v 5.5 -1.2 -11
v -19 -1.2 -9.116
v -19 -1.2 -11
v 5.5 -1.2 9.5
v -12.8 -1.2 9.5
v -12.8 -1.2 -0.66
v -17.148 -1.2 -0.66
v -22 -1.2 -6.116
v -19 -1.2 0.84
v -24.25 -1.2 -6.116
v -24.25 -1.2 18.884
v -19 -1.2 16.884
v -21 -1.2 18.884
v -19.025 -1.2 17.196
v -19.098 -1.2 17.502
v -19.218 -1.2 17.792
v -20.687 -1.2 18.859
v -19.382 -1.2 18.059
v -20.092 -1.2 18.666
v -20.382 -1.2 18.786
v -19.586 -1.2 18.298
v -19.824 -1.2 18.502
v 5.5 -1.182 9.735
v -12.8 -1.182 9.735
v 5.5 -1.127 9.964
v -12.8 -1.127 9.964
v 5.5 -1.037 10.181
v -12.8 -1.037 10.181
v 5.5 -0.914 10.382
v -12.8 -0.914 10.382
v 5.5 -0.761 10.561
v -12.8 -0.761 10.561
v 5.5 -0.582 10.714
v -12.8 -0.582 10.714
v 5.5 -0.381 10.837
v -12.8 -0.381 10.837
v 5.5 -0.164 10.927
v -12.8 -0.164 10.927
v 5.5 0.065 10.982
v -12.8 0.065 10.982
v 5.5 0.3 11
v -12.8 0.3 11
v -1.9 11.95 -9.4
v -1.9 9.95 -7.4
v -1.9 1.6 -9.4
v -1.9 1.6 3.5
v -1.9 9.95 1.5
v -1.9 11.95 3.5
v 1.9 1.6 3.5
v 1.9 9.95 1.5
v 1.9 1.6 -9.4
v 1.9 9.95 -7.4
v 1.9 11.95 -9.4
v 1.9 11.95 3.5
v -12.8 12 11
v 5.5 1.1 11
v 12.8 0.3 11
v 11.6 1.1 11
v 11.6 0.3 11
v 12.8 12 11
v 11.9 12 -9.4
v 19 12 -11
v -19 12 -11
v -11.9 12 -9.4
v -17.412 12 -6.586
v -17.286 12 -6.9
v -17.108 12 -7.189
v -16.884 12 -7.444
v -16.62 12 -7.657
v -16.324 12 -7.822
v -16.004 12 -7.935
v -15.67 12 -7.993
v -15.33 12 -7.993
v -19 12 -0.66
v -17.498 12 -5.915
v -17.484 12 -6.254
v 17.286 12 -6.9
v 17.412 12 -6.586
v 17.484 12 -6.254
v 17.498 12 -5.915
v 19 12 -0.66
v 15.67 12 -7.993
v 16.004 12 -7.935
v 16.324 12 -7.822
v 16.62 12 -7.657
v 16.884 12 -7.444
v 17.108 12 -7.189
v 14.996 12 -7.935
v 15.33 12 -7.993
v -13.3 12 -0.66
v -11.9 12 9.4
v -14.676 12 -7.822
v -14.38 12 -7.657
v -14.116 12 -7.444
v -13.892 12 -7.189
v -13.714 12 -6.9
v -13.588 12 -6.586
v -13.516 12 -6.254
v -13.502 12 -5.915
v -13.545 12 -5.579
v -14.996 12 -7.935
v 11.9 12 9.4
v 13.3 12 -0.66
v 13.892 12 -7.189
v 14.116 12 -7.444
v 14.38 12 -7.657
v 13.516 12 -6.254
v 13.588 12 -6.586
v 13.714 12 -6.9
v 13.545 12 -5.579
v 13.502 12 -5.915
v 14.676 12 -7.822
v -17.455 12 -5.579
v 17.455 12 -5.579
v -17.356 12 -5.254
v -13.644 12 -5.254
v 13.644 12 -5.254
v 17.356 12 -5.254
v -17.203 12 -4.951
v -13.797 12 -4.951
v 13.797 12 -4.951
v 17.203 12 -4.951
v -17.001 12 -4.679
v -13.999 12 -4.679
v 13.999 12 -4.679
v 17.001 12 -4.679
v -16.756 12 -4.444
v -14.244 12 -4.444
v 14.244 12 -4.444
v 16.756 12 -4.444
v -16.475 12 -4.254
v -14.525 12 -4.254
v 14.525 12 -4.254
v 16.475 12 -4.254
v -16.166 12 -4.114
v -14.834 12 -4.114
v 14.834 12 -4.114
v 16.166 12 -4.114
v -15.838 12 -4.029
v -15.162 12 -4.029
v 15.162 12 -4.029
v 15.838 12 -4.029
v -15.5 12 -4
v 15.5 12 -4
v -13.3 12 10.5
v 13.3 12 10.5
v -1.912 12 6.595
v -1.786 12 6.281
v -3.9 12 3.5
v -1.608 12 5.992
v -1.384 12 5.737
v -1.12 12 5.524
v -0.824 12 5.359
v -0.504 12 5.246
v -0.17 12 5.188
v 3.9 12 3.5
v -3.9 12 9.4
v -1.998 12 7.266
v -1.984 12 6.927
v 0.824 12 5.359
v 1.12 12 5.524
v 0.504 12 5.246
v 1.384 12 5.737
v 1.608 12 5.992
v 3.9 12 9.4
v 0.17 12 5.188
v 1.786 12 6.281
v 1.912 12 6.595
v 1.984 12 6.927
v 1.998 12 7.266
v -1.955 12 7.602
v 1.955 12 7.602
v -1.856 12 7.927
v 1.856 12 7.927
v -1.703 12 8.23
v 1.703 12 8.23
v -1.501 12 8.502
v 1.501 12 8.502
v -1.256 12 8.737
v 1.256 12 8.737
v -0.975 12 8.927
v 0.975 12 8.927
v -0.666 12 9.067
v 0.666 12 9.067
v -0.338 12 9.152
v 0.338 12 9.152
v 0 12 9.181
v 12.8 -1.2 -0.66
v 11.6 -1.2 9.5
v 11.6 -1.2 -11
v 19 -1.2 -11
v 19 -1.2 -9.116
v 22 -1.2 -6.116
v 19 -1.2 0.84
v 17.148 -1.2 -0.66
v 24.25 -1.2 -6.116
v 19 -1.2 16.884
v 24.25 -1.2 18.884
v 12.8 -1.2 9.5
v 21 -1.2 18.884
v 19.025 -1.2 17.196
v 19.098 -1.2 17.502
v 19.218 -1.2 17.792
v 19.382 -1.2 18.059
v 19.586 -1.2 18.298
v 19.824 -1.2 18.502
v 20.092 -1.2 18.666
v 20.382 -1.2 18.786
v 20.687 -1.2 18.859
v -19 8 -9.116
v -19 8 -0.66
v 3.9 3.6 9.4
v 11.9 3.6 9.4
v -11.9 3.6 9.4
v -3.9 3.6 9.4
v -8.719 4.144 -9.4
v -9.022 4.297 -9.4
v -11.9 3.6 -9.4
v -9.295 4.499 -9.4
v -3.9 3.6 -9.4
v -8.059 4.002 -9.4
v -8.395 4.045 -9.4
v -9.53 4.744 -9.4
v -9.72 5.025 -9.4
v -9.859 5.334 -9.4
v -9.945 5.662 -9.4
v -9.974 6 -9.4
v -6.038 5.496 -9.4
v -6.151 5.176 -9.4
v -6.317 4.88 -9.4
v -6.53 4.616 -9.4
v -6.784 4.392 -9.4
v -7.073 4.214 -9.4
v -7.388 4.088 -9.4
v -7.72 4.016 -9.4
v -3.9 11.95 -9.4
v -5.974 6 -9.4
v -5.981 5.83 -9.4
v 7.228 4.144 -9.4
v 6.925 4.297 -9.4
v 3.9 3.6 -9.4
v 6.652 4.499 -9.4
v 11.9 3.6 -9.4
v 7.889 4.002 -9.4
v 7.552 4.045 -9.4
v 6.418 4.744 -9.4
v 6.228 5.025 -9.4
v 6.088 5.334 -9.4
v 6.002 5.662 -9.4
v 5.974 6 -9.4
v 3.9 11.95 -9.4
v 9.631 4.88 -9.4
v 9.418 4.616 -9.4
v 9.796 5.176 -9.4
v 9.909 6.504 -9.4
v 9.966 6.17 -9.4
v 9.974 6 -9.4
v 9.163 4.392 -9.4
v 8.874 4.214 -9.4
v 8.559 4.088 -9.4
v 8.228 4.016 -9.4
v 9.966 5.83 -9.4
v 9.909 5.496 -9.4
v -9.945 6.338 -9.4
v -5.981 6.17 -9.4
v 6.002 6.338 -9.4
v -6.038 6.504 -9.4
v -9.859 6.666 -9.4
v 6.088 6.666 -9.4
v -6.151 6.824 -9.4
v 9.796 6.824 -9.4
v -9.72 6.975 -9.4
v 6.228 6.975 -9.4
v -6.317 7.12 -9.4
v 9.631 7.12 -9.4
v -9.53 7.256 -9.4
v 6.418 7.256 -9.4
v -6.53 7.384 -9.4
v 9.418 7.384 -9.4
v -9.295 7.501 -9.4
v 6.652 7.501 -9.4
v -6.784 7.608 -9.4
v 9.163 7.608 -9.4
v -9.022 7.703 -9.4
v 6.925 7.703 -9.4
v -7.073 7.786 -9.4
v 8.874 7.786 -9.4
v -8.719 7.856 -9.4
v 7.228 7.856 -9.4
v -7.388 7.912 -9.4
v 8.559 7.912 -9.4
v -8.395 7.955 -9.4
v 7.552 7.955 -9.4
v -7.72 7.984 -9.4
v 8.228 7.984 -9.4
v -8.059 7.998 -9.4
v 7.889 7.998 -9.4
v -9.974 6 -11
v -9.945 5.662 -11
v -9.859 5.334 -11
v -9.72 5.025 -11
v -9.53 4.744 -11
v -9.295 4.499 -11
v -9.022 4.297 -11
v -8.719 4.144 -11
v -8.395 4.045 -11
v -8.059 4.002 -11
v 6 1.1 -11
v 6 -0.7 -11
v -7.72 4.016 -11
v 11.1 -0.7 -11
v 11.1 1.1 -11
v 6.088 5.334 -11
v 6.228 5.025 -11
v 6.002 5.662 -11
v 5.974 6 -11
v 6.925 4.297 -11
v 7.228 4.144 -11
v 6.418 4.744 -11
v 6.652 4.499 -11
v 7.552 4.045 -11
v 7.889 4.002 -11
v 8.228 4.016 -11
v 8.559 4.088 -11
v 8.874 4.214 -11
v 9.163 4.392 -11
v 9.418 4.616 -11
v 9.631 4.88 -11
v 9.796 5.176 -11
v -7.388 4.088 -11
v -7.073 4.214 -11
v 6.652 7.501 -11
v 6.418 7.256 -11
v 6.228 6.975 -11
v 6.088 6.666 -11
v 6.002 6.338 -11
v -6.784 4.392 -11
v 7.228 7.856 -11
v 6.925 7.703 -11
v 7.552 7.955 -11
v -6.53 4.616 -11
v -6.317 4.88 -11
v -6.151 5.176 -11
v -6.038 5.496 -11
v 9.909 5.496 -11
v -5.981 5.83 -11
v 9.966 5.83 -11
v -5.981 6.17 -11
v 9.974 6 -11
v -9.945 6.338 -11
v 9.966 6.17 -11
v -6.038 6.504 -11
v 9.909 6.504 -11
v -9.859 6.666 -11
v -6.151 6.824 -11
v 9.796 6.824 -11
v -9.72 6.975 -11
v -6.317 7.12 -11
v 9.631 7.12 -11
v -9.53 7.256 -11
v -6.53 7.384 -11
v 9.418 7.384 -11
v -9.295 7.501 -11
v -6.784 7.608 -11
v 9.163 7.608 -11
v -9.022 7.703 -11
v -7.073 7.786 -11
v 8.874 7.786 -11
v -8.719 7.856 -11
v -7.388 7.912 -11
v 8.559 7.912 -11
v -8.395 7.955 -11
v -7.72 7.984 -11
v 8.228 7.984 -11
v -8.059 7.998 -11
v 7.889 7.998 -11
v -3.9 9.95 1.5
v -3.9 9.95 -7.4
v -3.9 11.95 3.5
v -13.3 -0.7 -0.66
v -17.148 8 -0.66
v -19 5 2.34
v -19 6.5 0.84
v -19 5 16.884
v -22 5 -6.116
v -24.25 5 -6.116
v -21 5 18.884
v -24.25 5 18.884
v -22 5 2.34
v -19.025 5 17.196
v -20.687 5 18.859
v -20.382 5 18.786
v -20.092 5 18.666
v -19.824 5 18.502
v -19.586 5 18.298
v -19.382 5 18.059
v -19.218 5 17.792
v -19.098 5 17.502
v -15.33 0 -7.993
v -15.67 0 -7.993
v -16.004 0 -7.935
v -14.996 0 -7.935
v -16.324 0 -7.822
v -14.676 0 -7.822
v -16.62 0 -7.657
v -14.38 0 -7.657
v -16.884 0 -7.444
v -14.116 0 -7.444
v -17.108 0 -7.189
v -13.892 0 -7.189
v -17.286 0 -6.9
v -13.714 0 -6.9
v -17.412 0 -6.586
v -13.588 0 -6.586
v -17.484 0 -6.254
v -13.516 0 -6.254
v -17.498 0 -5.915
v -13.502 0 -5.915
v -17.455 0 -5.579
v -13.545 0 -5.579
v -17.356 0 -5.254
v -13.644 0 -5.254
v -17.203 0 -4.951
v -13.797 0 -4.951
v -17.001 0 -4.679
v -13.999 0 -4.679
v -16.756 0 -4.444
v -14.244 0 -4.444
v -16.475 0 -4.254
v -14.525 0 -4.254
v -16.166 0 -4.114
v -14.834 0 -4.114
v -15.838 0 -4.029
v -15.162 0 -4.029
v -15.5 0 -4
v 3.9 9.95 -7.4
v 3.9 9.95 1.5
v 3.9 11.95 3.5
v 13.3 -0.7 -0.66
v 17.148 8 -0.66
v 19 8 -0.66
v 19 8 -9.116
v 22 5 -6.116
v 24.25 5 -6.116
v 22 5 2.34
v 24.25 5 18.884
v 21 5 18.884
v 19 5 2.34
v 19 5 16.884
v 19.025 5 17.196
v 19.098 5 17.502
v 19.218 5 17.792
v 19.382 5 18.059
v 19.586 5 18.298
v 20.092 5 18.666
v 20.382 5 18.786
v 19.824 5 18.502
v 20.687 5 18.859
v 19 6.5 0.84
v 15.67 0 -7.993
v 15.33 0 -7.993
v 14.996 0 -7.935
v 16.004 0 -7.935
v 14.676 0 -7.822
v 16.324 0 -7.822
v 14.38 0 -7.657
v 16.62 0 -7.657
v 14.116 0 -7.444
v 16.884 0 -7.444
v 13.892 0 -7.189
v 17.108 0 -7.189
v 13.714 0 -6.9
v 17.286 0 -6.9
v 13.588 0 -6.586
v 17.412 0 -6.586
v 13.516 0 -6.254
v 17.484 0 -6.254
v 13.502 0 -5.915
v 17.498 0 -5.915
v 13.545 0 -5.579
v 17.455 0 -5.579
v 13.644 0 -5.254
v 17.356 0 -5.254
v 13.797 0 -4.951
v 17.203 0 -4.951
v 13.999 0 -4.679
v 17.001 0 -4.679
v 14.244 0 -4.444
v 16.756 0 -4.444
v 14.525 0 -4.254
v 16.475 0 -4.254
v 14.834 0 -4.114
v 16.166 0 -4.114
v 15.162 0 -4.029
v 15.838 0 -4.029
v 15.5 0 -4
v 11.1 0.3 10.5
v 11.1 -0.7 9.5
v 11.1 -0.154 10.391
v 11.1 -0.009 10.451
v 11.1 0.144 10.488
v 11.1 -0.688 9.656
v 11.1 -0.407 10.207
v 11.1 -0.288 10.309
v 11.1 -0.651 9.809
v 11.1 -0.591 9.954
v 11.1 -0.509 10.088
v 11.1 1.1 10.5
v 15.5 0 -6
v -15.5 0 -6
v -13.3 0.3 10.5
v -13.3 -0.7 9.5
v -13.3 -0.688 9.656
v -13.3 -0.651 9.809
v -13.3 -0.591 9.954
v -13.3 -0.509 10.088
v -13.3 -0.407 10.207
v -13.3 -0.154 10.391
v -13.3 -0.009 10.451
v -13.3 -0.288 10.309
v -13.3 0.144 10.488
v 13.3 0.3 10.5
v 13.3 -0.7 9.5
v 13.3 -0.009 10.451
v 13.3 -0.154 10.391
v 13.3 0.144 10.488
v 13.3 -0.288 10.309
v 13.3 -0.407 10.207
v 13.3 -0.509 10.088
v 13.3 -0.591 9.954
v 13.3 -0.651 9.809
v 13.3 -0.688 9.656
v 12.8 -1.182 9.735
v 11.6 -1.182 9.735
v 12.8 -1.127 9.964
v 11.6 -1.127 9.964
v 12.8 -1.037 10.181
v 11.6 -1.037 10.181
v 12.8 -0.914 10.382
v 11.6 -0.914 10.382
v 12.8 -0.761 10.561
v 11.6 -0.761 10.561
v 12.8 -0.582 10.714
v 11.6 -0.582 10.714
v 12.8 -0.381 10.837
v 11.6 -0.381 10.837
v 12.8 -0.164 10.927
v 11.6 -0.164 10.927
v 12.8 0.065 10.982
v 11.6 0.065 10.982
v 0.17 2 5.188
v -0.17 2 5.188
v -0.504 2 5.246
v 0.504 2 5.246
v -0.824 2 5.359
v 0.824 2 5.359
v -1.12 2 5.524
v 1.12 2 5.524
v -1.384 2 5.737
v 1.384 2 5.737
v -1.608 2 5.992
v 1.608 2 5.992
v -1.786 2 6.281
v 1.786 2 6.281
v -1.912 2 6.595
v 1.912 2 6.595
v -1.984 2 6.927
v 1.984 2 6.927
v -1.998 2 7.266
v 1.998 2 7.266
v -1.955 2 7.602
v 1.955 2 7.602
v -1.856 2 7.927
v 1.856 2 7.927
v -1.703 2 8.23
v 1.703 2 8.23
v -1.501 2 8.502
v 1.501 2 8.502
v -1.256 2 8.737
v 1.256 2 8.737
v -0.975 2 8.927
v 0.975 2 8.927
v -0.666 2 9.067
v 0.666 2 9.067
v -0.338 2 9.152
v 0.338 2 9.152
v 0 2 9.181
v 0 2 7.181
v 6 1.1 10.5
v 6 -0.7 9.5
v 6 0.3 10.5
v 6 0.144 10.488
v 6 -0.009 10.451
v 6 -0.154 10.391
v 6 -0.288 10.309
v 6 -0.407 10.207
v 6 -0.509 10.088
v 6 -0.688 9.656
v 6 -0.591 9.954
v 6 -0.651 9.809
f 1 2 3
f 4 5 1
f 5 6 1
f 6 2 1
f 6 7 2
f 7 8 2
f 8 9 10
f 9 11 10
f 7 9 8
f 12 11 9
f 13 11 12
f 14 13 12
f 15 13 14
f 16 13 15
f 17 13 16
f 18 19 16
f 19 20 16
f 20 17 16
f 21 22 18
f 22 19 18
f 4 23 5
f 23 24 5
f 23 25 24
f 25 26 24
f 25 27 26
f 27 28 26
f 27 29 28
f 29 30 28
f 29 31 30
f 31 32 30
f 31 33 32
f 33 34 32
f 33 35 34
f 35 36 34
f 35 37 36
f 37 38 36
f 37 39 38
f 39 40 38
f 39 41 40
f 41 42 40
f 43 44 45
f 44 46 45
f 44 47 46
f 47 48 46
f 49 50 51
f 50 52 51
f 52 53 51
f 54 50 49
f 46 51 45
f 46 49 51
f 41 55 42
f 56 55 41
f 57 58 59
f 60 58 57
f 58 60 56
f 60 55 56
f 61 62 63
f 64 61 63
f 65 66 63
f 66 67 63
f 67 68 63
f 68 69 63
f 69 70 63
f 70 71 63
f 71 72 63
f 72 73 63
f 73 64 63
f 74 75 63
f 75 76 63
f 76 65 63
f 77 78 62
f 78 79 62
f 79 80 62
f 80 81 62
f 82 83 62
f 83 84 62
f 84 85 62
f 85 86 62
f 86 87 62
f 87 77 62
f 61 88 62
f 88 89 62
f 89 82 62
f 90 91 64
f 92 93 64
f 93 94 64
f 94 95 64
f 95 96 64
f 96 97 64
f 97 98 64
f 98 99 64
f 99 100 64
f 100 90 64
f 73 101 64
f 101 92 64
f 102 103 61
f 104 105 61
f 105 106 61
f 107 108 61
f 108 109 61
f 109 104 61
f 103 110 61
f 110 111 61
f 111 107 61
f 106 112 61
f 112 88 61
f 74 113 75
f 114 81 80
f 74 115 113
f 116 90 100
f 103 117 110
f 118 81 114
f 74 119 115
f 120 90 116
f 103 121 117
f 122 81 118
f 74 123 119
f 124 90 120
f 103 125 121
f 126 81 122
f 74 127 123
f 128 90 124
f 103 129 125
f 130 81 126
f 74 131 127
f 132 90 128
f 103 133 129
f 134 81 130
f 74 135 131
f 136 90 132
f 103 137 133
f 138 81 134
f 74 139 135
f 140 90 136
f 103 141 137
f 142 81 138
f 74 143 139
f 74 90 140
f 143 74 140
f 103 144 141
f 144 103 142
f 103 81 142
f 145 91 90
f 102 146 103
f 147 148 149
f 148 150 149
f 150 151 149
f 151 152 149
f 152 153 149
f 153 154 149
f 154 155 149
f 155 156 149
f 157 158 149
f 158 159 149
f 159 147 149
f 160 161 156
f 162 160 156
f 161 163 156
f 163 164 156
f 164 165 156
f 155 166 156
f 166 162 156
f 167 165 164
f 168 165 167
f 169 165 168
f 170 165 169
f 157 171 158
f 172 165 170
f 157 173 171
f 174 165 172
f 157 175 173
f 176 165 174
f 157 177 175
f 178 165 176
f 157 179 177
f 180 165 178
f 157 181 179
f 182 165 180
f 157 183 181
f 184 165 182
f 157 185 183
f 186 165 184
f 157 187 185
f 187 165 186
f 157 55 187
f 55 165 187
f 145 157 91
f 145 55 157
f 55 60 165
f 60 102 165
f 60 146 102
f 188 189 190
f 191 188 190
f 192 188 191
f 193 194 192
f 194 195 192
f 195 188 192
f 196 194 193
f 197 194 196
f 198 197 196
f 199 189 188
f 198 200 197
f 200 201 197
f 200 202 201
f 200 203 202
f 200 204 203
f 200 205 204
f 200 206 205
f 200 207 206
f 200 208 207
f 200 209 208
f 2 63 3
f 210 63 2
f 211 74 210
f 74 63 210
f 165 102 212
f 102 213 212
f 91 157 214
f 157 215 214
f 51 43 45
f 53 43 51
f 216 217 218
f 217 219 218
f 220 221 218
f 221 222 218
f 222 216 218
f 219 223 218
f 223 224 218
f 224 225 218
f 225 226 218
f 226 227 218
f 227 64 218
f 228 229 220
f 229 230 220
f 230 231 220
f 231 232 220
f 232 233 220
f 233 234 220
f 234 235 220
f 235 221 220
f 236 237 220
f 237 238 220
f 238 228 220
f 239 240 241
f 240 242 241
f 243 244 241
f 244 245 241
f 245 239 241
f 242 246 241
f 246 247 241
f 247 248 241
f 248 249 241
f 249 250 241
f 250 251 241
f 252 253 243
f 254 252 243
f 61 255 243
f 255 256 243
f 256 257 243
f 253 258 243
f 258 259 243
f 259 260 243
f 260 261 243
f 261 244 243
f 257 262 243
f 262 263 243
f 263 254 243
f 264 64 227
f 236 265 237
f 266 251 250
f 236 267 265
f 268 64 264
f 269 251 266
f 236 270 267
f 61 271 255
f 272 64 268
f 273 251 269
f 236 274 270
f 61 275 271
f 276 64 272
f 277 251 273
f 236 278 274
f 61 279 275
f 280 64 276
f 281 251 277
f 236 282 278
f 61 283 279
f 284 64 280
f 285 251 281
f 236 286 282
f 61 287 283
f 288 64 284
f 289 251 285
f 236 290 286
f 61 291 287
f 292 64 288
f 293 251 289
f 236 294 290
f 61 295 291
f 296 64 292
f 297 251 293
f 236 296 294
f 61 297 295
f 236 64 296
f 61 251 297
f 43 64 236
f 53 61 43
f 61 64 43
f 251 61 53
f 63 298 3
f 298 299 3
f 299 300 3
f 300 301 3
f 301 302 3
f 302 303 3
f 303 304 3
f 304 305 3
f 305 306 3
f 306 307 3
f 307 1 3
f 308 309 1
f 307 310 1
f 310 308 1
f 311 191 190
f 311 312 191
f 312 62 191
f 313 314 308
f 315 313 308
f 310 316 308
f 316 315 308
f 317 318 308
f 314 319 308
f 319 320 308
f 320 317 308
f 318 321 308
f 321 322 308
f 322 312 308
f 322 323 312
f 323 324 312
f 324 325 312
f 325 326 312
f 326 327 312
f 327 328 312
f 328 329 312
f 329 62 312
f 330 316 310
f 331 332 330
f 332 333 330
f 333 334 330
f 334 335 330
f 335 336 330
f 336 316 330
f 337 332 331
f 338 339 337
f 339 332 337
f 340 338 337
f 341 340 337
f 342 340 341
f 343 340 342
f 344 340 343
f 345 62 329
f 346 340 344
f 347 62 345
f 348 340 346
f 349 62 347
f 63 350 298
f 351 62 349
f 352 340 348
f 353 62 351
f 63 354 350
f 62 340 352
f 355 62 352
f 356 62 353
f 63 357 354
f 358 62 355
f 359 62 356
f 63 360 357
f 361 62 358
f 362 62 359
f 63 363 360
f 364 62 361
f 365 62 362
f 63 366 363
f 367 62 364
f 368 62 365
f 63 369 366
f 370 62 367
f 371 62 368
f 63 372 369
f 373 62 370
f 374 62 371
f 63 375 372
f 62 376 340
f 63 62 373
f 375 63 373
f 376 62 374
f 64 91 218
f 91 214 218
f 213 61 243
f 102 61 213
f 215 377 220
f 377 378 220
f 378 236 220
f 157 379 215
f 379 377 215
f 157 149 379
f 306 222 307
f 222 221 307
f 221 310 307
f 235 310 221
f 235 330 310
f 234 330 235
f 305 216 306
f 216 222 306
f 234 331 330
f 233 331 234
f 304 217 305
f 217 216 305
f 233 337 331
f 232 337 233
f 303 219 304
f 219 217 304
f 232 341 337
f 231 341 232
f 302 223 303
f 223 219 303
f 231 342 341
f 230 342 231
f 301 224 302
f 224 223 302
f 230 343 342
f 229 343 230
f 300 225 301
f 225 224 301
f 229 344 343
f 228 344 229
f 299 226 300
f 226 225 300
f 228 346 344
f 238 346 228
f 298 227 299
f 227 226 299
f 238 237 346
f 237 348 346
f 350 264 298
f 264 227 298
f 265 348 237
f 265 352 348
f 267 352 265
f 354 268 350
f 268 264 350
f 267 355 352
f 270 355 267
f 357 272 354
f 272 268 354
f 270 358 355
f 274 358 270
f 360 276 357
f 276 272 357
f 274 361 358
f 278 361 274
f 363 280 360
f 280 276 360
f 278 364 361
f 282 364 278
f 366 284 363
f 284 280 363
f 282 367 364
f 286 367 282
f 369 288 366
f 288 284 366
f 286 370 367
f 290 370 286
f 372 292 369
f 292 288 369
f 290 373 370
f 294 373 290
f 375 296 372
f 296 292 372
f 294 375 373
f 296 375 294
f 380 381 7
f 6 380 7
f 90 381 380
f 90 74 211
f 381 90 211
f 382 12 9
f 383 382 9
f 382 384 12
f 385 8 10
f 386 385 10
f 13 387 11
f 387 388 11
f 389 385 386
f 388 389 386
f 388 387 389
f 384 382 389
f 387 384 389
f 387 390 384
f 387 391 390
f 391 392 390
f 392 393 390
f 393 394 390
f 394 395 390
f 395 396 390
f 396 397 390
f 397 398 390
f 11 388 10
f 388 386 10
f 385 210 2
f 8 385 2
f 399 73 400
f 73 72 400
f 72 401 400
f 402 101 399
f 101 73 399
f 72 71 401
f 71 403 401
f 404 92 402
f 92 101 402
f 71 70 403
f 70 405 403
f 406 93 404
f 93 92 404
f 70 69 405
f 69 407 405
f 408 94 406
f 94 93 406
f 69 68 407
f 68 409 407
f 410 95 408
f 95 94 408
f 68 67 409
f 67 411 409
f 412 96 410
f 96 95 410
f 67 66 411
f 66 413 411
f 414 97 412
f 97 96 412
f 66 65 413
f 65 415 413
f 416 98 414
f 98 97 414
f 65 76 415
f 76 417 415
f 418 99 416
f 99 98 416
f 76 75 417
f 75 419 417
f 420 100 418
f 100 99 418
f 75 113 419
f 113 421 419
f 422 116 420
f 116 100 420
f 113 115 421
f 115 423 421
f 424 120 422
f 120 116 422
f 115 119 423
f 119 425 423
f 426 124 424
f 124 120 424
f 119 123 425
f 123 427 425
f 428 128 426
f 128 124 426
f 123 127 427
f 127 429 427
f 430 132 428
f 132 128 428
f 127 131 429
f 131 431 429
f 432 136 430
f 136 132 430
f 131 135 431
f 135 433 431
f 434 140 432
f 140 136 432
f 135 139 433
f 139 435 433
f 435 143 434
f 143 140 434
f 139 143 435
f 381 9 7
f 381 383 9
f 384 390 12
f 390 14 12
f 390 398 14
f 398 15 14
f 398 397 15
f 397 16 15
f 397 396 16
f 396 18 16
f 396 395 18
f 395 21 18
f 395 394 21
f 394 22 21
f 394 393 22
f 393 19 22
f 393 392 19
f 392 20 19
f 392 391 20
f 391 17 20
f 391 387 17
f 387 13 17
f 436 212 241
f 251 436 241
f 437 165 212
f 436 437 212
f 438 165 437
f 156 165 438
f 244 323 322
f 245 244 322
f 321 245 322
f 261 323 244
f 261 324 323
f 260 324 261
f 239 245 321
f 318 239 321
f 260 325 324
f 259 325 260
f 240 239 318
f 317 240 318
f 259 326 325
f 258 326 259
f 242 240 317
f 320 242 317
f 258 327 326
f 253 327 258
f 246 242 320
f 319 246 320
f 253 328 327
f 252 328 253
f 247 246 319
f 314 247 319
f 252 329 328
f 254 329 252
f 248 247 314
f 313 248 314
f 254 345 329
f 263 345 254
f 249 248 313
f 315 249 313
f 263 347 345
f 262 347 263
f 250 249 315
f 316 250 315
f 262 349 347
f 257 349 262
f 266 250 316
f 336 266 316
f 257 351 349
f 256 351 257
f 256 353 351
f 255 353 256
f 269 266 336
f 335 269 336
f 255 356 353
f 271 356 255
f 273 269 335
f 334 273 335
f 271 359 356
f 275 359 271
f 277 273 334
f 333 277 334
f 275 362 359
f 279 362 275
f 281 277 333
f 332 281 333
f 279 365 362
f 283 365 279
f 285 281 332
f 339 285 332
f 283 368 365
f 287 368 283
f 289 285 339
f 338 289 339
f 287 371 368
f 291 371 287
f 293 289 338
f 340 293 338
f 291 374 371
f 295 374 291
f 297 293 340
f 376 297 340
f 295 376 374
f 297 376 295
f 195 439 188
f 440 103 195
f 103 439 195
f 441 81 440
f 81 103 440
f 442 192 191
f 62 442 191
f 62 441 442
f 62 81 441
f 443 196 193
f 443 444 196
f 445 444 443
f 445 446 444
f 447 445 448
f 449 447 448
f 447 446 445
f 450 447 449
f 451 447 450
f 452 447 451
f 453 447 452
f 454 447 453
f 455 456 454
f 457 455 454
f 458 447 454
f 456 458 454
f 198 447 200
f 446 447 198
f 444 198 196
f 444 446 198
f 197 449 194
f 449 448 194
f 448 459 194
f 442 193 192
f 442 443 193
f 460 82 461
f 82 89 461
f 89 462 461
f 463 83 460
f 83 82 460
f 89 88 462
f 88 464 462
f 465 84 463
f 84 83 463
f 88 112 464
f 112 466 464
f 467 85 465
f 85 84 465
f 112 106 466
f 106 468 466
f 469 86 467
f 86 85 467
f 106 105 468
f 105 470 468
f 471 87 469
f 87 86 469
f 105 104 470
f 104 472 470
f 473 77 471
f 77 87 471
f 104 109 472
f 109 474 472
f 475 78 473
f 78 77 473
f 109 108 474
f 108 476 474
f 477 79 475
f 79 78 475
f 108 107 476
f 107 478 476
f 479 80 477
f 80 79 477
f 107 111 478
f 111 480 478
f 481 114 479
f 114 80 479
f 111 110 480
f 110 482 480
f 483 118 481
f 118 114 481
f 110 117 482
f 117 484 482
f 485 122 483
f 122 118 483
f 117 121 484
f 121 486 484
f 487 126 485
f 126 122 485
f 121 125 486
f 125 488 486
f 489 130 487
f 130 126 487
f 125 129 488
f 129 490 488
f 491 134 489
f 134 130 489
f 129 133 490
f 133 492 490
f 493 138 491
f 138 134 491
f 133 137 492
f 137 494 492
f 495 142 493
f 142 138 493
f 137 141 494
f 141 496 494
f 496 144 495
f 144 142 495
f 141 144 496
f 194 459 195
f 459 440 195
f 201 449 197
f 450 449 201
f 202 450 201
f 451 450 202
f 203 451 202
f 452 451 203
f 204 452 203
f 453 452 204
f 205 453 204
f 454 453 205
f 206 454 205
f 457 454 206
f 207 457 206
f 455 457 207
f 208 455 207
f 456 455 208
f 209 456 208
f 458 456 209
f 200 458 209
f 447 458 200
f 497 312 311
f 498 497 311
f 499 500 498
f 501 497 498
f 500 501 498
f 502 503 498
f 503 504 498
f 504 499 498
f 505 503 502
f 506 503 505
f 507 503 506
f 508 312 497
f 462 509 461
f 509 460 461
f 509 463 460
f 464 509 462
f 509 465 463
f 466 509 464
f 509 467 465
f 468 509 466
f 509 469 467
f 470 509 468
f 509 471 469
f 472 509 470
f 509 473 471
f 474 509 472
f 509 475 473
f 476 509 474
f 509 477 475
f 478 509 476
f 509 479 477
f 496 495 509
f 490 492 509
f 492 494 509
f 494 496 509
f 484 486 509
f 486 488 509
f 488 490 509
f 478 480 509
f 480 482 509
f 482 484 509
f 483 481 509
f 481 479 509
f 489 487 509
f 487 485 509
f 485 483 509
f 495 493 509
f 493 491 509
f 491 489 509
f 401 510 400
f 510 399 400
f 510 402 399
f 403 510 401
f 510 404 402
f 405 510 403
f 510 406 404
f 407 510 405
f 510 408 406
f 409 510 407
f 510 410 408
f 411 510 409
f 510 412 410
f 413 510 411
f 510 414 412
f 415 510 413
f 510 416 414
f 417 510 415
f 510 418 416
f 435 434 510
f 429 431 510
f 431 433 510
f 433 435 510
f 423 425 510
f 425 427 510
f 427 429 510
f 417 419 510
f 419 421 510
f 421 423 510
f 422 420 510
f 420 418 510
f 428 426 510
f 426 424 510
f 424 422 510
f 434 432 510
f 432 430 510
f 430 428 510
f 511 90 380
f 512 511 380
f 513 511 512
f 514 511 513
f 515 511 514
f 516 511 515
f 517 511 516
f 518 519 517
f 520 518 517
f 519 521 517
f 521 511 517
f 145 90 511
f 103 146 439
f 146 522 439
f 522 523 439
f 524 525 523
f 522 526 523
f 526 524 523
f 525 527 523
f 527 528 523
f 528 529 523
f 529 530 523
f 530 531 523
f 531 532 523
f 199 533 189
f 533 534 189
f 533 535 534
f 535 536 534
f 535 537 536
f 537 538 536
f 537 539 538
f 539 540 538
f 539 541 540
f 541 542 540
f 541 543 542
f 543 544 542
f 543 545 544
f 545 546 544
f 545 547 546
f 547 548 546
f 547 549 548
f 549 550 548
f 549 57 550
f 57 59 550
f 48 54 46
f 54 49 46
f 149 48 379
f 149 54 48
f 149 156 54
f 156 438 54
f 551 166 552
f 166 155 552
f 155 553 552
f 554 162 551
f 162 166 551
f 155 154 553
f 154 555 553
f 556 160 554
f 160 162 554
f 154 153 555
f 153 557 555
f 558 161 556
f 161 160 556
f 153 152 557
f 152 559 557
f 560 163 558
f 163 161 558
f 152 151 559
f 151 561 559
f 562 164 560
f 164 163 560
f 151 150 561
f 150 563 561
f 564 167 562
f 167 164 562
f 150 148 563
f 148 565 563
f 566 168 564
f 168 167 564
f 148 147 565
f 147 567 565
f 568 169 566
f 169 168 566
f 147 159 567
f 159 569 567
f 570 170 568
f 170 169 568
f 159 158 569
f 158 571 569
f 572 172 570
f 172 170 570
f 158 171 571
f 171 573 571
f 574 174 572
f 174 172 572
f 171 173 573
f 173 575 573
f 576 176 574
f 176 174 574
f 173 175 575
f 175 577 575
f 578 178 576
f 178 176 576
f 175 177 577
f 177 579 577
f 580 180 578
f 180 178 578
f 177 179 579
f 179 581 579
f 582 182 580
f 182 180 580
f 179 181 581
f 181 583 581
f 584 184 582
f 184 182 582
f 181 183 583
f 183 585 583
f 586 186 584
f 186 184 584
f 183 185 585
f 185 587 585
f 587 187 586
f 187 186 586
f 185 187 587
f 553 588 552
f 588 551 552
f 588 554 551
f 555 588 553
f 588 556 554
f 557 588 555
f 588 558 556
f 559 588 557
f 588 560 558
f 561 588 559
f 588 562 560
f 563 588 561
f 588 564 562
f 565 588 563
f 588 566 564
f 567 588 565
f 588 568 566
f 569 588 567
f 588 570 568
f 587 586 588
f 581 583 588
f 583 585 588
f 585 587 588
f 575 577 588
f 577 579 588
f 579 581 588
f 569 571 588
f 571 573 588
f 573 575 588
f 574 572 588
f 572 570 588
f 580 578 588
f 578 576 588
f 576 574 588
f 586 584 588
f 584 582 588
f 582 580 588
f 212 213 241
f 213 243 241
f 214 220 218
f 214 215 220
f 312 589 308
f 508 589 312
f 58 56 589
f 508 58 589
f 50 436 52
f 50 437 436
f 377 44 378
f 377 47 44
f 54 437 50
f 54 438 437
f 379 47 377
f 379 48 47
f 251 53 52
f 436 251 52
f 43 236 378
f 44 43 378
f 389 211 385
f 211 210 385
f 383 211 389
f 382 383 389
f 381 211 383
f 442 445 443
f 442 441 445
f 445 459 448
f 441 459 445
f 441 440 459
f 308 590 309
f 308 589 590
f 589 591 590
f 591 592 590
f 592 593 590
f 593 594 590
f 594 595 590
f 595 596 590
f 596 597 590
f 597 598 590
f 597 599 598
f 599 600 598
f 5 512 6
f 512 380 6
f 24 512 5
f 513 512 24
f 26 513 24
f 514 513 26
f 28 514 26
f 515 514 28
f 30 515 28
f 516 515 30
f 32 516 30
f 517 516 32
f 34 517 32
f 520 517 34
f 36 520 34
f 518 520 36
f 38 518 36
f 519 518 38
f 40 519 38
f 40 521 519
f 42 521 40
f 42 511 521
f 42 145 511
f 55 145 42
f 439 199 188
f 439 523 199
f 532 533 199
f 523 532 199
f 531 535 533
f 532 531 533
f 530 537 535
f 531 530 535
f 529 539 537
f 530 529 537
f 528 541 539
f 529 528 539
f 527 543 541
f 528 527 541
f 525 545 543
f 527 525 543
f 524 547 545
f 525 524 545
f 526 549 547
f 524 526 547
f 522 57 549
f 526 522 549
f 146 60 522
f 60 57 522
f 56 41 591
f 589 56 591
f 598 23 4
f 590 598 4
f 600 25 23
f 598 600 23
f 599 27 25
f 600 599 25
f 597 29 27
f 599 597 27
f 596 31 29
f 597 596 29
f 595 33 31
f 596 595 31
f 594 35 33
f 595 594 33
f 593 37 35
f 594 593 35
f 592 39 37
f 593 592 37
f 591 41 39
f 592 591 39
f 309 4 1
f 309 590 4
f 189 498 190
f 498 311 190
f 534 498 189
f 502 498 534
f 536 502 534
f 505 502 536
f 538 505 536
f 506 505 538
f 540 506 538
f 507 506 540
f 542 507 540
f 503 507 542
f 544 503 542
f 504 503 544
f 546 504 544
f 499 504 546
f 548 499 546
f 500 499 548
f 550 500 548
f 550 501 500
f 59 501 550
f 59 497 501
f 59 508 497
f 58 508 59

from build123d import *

# Parameters (mm, degrees)
SKETCH1_W                 = 27
SKETCH1_H                 = 22
BOSS_EXTRUDE1_DEPTH       = 12
SHELL1_T                  = -1.6
SKETCH2_W                 = 2
SKETCH2_H                 = 18.8
BOSS_EXTRUDE2_DEPTH       = 10.4
SKETCH4_R                 = 2
CUT_EXTRUDE2_DEPTH        = 9
SKETCH6_W                 = 10.34
SKETCH6_H                 = 12
BOSS_EXTRUDE4_DEPTH       = 5.5
SKETCH7_W                 = 25
SKETCH7_H                 = 5
BOSS_EXTRUDE5_DEPTH       = 5.25
CHAMFER1_SIZE             = 3
SKETCH8_R                 = 2
CUT_EXTRUDE3_DEPTH        = 33.994744773
CHAMFER2_SIZE             = 1.5
CHAMFER2_SIZE2            = 1.852345735
FILLET1_R                 = 2
CHAMFER1_OF_MIRROR1_SIZE  = 3
CHAMFER2_OF_MIRROR1_SIZE2 = 1.5
CHAMFER2_OF_MIRROR1_SIZE  = 1.852345735
FILLET1_OF_MIRROR1_R      = 2
BOSS_EXTRUDE7_START       = 1.2
BOSS_EXTRUDE7_DEPTH       = 1.2
SKETCH13_W                = 4.5
SKETCH13_H                = 22
CUT_EXTRUDE5_DEPTH        = 1
SKETCH17_W                = 11.66
SKETCH17_H                = 13.2
CUT_TOLERANCE_FIX_DEPTH   = 0.2
FILLET2_R                 = 1.5
SKETCH18_W                = 3.8
SKETCH18_H                = 5.9
BOSS_EXTRUDE8_DEPTH       = 10.4
SKETCH11_R                = 2
CUT_EXTRUDE6_DEPTH        = 10
SKETCH19_W                = 8
SKETCH19_H                = 18.8
BOSS_EXTRUDE9_DEPTH       = 2
SKETCH20_W                = 4.5
SKETCH20_H                = 22
CUT_EXTRUDE7_DEPTH        = 0.1
SKETCH21_W                = 7.8
SKETCH21_H                = 12.9
CUT_EXTRUDE8_DEPTH        = 2.05
CHAMFER4_SIZE             = 2
CHAMFER5_SIZE             = 3
TOLERANCE_ADJ_DEPTH       = 0.6
CHAMFER6_SIZE             = 0.5


with BuildPart() as part:
    # Sketch1 → Boss-Extrude1 (new body)
    with BuildSketch(Plane(origin=(0, 0, 0), x_dir=(1, 0, 0), z_dir=(0, 1, 0))):
        Rectangle(SKETCH1_W, SKETCH1_H)
    extrude(amount=BOSS_EXTRUDE1_DEPTH)

    # Shell1
    shell1_openings = [part.faces().sort_by_distance(p)[0] for p in [
        (0, 12, 0),
    ]]
    offset(amount=SHELL1_T, openings=shell1_openings, kind=Kind.INTERSECTION)

    # Sketch2 → Boss-Extrude2 (add)
    with BuildSketch(Plane(origin=(0, 1.6, 0), x_dir=(1, 0, 0), z_dir=(0, 1, 0))):
        with Locations((-2.9, 0)):
            Rectangle(SKETCH2_W, SKETCH2_H)
    boss_extrude2 = extrude(amount=BOSS_EXTRUDE2_DEPTH)

    # Sketch4 → Cut-Extrude2 (cut)
    with BuildSketch(Plane(origin=(0, 0, -11), x_dir=(-1, 0, 0), z_dir=(0, 0, -1))):
        with Locations((7.973688368, 6)):
            Circle(SKETCH4_R)
    cut_extrude2 = extrude(amount=-CUT_EXTRUDE2_DEPTH, mode=Mode.SUBTRACT)

    # Sketch6 → Boss-Extrude4 (add)
    with BuildSketch(Plane.ZY.offset(13.5)):
        with Locations((-5.83, 6)):
            Rectangle(SKETCH6_W, SKETCH6_H)
    boss_extrude4 = extrude(amount=BOSS_EXTRUDE4_DEPTH)

    # Sketch7 → Boss-Extrude5 (add)
    with BuildSketch(Plane.ZY.offset(19)):
        with Locations((6.383608836, 2.5)):
            Rectangle(SKETCH7_W, SKETCH7_H)
    boss_extrude5 = extrude(amount=BOSS_EXTRUDE5_DEPTH)

    # Chamfer1
    chamfer1_edges = [part.edges().sort_by_distance(p)[0] for p in [
        (-19, 2.5, -6.116391164),
    ]]
    chamfer(chamfer1_edges, length=CHAMFER1_SIZE)

    # Sketch8 → Cut-Extrude3 (cut, through all)
    with BuildSketch(Plane(origin=(0, 12, 0), x_dir=(1, 0, 0), z_dir=(0, 1, 0))):
        with Locations(Location((-15.5, 6, 0), (0, 0, 270))):
            Circle(SKETCH8_R)
    cut_extrude3 = extrude(amount=-CUT_EXTRUDE3_DEPTH, mode=Mode.SUBTRACT)

    # Chamfer2
    chamfer2_edges = [part.edges().sort_by_distance(p)[0] for p in [
        (-19, 2.5, -0.66),
    ]]
    chamfer2_side = [part.faces().sort_by_distance(p)[0] for p in [
        (-19, 2.5, 9.111804418),
    ]]
    chamfer(chamfer2_edges, length=CHAMFER2_SIZE, length2=CHAMFER2_SIZE2, reference=chamfer2_side[0])

    # Fillet1
    fillet1_edges = [part.edges().sort_by_distance(p)[0] for p in [
        (-19, 2.5, 18.883608836),
    ]]
    fillet(fillet1_edges, radius=FILLET1_R)

    # Mirror1: Boss-Extrude2, Cut-Extrude2, Boss-Extrude4, Boss-Extrude5, Cut-Extrude3 across plane
    add(boss_extrude2.mirror(Plane.ZY))
    add(cut_extrude2.mirror(Plane.ZY), mode=Mode.SUBTRACT)
    add(boss_extrude4.mirror(Plane.ZY))
    add(boss_extrude5.mirror(Plane.ZY))
    add(cut_extrude3.mirror(Plane.ZY), mode=Mode.SUBTRACT)

    # Chamfer1 of Mirror1
    chamfer1_of_mirror1_edges = [part.edges().sort_by_distance(p)[0] for p in [
        (19, 2.5, -6.116391164),
    ]]
    chamfer(chamfer1_of_mirror1_edges, length=CHAMFER1_OF_MIRROR1_SIZE)

    # Chamfer2 of Mirror1
    chamfer2_of_mirror1_edges = [part.edges().sort_by_distance(p)[0] for p in [
        (19, 2.5, -0.66),
    ]]
    chamfer(chamfer2_of_mirror1_edges, length=CHAMFER2_OF_MIRROR1_SIZE, length2=CHAMFER2_OF_MIRROR1_SIZE2)

    # Fillet1 of Mirror1
    fillet1_of_mirror1_edges = [part.edges().sort_by_distance(p)[0] for p in [
        (19, 2.5, 18.883608836),
    ]]
    fillet(fillet1_of_mirror1_edges, radius=FILLET1_OF_MIRROR1_R)

    # Sketch12 → Boss-Extrude7 (add)
    with BuildSketch(Plane.XZ.offset(BOSS_EXTRUDE7_START)):
        with BuildLine():
            Line((6.6, 11), (-13.5, 11))
            Line((-13.5, 11), (-13.5, -0.66))
            Line((-13.5, -0.66), (-17.147654265, -0.66))
            Line((-17.147654265, -0.66), (-19, 0.84))
            Line((-19, 0.84), (-19, 16.883608836))
            ThreePointArc((-19, 16.883608836), (-19.585786438, 18.297822398), (-21, 18.883608836))
            Line((-21, 18.883608836), (-24.25, 18.883608836))
            Line((-24.25, 18.883608836), (-24.25, -6.116391164))
            Line((-24.25, -6.116391164), (-22, -6.116391164))
            Line((-22, -6.116391164), (-19, -9.116391164))
            Line((-19, -9.116391164), (-19, -11))
            Line((-19, -11), (6.6, -11))
            Line((6.6, -11), (6.6, 11))
        make_face()
        with BuildLine():
            Line((11.1, -11), (11.1, 11))
            Line((11.1, 11), (13.5, 11))
            Line((13.5, 11), (13.5, -0.66))
            Line((13.5, -0.66), (17.147654265, -0.66))
            Line((17.147654265, -0.66), (19, 0.84))
            Line((19, 0.84), (19, 16.883608836))
            ThreePointArc((19, 16.883608836), (19.585786438, 18.297822398), (21, 18.883608836))
            Line((21, 18.883608836), (24.25, 18.883608836))
            Line((24.25, 18.883608836), (24.25, -6.116391164))
            Line((24.25, -6.116391164), (22, -6.116391164))
            Line((22, -6.116391164), (19, -9.116391164))
            Line((19, -9.116391164), (19, -11))
            Line((19, -11), (11.1, -11))
        make_face()
    extrude(amount=-BOSS_EXTRUDE7_DEPTH)

    # Sketch13 → Cut-Extrude5 (cut)
    with BuildSketch(Plane(origin=(0, 0, 0), x_dir=(-1, 0, 0), z_dir=(0, -1, 0))):
        with Locations((-8.85, 0)):
            Rectangle(SKETCH13_W, SKETCH13_H)
    extrude(amount=-CUT_EXTRUDE5_DEPTH, mode=Mode.SUBTRACT)

    # Sketch17 → Cut- tolerance fix (cut)
    with BuildSketch(Plane.ZY.offset(13.5)):
        with Locations((5.17, 5.4)):
            Rectangle(SKETCH17_W, SKETCH17_H)
    cut_tolerance_fix = extrude(amount=-CUT_TOLERANCE_FIX_DEPTH, mode=Mode.SUBTRACT)

    # Mirror2: Cut- tolerance fix across plane
    add(cut_tolerance_fix.mirror(Plane.ZY), mode=Mode.SUBTRACT)

    # Fillet2
    fillet2_edges = [part.edges().sort_by_distance(p)[0] for p in [
        (-3.35, -1.2, 11),
        (12.2, -1.2, 11),
    ]]
    fillet(fillet2_edges, radius=FILLET2_R)

    # Sketch18 → Boss-Extrude8 (add)
    with BuildSketch(Plane(origin=(0, 1.6, 0), x_dir=(1, 0, 0), z_dir=(0, 1, 0))):
        with Locations((0, -6.45)):
            Rectangle(SKETCH18_W, SKETCH18_H)
    extrude(amount=BOSS_EXTRUDE8_DEPTH)

    # Sketch11 → Cut-Extrude6 (cut)
    with BuildSketch(Plane(origin=(0, 12, 0), x_dir=(1, 0, 0), z_dir=(0, 1, 0))):
        with Locations(Location((0, -7.181115317, 0), (0, 0, 270))):
            Circle(SKETCH11_R)
    extrude(amount=-CUT_EXTRUDE6_DEPTH, mode=Mode.SUBTRACT)

    # Sketch19 → Boss-Extrude9 (add)
    with BuildSketch(Plane(origin=(0, 1.6, 0), x_dir=(1, 0, 0), z_dir=(0, 1, 0))):
        with Locations((7.9, 0)):
            Rectangle(SKETCH19_W, SKETCH19_H)
        with Locations((-7.9, 0)):
            Rectangle(SKETCH19_W, SKETCH19_H)
    extrude(amount=BOSS_EXTRUDE9_DEPTH)

    # Sketch20 → Cut-Extrude7 (cut)
    with BuildSketch(Plane.XZ.offset(-1)):
        with Locations((8.85, 0)):
            Rectangle(SKETCH20_W, SKETCH20_H)
    extrude(amount=-CUT_EXTRUDE7_DEPTH, mode=Mode.SUBTRACT)

    # Sketch21 → Cut-Extrude8 (cut)
    with BuildSketch(Plane(origin=(0, 12, 0), x_dir=(1, 0, 0), z_dir=(0, 1, 0))):
        with Locations((0, 2.95)):
            Rectangle(SKETCH21_W, SKETCH21_H)
    extrude(amount=-CUT_EXTRUDE8_DEPTH, mode=Mode.SUBTRACT)

    # Chamfer4
    chamfer4_edges = [part.edges().sort_by_distance(p)[0] for p in [
        (-2.9, 9.95, -9.4),
        (-2.9, 9.95, 3.5),
        (2.9, 9.95, -9.4),
        (2.9, 9.95, 3.5),
    ]]
    chamfer(chamfer4_edges, length=CHAMFER4_SIZE)

    # Chamfer5
    chamfer5_edges = [part.edges().sort_by_distance(p)[0] for p in [
        (-18.073827133, 5, -0.66),
        (-19, 5, -4.888195582),
        (18.073827133, 5, -0.66),
        (19, 5, -4.888195582),
    ]]
    chamfer(chamfer5_edges, length=CHAMFER5_SIZE)

    # Sketch22 → tolerance adj (cut)
    with BuildSketch(Plane(origin=(6.6, 0, 0), x_dir=(0, 0, -1), z_dir=(1, 0, 0))):
        with BuildLine():
            Line((-11, 1.1), (-11, 0.3))
            ThreePointArc((-11, 0.3), (-10.560660172, -0.760660172), (-9.5, -1.2))
            Line((-9.5, -1.2), (11, -1.2))
            Line((11, -1.2), (11, 1.1))
            Line((11, 1.1), (-11, 1.1))
        make_face()
    extrude(amount=-TOLERANCE_ADJ_DEPTH, mode=Mode.SUBTRACT)

    # Chamfer6
    chamfer6_edges = [part.edges().sort_by_distance(p)[0] for p in [
        (-13.3, -1.2, 4.42),
        (13.3, -1.2, 4.42),
        (11.1, -1.2, -0.75),
        (11.1, 0.7, 11),
        (11.1, -0.760660172, 10.560660172),
        (13.3, 6.15, 11),
        (-13.3, 6.15, 11),
        (13.3, -0.760660172, 10.560660172),
        (-13.3, -0.760660172, 10.560660172),
        (6, -1.2, -0.75),
        (6, -0.760660172, 10.560660172),
        (6, 0.7, 11),
    ]]
    chamfer(chamfer6_edges, length=CHAMFER6_SIZE)


solid = part.part
